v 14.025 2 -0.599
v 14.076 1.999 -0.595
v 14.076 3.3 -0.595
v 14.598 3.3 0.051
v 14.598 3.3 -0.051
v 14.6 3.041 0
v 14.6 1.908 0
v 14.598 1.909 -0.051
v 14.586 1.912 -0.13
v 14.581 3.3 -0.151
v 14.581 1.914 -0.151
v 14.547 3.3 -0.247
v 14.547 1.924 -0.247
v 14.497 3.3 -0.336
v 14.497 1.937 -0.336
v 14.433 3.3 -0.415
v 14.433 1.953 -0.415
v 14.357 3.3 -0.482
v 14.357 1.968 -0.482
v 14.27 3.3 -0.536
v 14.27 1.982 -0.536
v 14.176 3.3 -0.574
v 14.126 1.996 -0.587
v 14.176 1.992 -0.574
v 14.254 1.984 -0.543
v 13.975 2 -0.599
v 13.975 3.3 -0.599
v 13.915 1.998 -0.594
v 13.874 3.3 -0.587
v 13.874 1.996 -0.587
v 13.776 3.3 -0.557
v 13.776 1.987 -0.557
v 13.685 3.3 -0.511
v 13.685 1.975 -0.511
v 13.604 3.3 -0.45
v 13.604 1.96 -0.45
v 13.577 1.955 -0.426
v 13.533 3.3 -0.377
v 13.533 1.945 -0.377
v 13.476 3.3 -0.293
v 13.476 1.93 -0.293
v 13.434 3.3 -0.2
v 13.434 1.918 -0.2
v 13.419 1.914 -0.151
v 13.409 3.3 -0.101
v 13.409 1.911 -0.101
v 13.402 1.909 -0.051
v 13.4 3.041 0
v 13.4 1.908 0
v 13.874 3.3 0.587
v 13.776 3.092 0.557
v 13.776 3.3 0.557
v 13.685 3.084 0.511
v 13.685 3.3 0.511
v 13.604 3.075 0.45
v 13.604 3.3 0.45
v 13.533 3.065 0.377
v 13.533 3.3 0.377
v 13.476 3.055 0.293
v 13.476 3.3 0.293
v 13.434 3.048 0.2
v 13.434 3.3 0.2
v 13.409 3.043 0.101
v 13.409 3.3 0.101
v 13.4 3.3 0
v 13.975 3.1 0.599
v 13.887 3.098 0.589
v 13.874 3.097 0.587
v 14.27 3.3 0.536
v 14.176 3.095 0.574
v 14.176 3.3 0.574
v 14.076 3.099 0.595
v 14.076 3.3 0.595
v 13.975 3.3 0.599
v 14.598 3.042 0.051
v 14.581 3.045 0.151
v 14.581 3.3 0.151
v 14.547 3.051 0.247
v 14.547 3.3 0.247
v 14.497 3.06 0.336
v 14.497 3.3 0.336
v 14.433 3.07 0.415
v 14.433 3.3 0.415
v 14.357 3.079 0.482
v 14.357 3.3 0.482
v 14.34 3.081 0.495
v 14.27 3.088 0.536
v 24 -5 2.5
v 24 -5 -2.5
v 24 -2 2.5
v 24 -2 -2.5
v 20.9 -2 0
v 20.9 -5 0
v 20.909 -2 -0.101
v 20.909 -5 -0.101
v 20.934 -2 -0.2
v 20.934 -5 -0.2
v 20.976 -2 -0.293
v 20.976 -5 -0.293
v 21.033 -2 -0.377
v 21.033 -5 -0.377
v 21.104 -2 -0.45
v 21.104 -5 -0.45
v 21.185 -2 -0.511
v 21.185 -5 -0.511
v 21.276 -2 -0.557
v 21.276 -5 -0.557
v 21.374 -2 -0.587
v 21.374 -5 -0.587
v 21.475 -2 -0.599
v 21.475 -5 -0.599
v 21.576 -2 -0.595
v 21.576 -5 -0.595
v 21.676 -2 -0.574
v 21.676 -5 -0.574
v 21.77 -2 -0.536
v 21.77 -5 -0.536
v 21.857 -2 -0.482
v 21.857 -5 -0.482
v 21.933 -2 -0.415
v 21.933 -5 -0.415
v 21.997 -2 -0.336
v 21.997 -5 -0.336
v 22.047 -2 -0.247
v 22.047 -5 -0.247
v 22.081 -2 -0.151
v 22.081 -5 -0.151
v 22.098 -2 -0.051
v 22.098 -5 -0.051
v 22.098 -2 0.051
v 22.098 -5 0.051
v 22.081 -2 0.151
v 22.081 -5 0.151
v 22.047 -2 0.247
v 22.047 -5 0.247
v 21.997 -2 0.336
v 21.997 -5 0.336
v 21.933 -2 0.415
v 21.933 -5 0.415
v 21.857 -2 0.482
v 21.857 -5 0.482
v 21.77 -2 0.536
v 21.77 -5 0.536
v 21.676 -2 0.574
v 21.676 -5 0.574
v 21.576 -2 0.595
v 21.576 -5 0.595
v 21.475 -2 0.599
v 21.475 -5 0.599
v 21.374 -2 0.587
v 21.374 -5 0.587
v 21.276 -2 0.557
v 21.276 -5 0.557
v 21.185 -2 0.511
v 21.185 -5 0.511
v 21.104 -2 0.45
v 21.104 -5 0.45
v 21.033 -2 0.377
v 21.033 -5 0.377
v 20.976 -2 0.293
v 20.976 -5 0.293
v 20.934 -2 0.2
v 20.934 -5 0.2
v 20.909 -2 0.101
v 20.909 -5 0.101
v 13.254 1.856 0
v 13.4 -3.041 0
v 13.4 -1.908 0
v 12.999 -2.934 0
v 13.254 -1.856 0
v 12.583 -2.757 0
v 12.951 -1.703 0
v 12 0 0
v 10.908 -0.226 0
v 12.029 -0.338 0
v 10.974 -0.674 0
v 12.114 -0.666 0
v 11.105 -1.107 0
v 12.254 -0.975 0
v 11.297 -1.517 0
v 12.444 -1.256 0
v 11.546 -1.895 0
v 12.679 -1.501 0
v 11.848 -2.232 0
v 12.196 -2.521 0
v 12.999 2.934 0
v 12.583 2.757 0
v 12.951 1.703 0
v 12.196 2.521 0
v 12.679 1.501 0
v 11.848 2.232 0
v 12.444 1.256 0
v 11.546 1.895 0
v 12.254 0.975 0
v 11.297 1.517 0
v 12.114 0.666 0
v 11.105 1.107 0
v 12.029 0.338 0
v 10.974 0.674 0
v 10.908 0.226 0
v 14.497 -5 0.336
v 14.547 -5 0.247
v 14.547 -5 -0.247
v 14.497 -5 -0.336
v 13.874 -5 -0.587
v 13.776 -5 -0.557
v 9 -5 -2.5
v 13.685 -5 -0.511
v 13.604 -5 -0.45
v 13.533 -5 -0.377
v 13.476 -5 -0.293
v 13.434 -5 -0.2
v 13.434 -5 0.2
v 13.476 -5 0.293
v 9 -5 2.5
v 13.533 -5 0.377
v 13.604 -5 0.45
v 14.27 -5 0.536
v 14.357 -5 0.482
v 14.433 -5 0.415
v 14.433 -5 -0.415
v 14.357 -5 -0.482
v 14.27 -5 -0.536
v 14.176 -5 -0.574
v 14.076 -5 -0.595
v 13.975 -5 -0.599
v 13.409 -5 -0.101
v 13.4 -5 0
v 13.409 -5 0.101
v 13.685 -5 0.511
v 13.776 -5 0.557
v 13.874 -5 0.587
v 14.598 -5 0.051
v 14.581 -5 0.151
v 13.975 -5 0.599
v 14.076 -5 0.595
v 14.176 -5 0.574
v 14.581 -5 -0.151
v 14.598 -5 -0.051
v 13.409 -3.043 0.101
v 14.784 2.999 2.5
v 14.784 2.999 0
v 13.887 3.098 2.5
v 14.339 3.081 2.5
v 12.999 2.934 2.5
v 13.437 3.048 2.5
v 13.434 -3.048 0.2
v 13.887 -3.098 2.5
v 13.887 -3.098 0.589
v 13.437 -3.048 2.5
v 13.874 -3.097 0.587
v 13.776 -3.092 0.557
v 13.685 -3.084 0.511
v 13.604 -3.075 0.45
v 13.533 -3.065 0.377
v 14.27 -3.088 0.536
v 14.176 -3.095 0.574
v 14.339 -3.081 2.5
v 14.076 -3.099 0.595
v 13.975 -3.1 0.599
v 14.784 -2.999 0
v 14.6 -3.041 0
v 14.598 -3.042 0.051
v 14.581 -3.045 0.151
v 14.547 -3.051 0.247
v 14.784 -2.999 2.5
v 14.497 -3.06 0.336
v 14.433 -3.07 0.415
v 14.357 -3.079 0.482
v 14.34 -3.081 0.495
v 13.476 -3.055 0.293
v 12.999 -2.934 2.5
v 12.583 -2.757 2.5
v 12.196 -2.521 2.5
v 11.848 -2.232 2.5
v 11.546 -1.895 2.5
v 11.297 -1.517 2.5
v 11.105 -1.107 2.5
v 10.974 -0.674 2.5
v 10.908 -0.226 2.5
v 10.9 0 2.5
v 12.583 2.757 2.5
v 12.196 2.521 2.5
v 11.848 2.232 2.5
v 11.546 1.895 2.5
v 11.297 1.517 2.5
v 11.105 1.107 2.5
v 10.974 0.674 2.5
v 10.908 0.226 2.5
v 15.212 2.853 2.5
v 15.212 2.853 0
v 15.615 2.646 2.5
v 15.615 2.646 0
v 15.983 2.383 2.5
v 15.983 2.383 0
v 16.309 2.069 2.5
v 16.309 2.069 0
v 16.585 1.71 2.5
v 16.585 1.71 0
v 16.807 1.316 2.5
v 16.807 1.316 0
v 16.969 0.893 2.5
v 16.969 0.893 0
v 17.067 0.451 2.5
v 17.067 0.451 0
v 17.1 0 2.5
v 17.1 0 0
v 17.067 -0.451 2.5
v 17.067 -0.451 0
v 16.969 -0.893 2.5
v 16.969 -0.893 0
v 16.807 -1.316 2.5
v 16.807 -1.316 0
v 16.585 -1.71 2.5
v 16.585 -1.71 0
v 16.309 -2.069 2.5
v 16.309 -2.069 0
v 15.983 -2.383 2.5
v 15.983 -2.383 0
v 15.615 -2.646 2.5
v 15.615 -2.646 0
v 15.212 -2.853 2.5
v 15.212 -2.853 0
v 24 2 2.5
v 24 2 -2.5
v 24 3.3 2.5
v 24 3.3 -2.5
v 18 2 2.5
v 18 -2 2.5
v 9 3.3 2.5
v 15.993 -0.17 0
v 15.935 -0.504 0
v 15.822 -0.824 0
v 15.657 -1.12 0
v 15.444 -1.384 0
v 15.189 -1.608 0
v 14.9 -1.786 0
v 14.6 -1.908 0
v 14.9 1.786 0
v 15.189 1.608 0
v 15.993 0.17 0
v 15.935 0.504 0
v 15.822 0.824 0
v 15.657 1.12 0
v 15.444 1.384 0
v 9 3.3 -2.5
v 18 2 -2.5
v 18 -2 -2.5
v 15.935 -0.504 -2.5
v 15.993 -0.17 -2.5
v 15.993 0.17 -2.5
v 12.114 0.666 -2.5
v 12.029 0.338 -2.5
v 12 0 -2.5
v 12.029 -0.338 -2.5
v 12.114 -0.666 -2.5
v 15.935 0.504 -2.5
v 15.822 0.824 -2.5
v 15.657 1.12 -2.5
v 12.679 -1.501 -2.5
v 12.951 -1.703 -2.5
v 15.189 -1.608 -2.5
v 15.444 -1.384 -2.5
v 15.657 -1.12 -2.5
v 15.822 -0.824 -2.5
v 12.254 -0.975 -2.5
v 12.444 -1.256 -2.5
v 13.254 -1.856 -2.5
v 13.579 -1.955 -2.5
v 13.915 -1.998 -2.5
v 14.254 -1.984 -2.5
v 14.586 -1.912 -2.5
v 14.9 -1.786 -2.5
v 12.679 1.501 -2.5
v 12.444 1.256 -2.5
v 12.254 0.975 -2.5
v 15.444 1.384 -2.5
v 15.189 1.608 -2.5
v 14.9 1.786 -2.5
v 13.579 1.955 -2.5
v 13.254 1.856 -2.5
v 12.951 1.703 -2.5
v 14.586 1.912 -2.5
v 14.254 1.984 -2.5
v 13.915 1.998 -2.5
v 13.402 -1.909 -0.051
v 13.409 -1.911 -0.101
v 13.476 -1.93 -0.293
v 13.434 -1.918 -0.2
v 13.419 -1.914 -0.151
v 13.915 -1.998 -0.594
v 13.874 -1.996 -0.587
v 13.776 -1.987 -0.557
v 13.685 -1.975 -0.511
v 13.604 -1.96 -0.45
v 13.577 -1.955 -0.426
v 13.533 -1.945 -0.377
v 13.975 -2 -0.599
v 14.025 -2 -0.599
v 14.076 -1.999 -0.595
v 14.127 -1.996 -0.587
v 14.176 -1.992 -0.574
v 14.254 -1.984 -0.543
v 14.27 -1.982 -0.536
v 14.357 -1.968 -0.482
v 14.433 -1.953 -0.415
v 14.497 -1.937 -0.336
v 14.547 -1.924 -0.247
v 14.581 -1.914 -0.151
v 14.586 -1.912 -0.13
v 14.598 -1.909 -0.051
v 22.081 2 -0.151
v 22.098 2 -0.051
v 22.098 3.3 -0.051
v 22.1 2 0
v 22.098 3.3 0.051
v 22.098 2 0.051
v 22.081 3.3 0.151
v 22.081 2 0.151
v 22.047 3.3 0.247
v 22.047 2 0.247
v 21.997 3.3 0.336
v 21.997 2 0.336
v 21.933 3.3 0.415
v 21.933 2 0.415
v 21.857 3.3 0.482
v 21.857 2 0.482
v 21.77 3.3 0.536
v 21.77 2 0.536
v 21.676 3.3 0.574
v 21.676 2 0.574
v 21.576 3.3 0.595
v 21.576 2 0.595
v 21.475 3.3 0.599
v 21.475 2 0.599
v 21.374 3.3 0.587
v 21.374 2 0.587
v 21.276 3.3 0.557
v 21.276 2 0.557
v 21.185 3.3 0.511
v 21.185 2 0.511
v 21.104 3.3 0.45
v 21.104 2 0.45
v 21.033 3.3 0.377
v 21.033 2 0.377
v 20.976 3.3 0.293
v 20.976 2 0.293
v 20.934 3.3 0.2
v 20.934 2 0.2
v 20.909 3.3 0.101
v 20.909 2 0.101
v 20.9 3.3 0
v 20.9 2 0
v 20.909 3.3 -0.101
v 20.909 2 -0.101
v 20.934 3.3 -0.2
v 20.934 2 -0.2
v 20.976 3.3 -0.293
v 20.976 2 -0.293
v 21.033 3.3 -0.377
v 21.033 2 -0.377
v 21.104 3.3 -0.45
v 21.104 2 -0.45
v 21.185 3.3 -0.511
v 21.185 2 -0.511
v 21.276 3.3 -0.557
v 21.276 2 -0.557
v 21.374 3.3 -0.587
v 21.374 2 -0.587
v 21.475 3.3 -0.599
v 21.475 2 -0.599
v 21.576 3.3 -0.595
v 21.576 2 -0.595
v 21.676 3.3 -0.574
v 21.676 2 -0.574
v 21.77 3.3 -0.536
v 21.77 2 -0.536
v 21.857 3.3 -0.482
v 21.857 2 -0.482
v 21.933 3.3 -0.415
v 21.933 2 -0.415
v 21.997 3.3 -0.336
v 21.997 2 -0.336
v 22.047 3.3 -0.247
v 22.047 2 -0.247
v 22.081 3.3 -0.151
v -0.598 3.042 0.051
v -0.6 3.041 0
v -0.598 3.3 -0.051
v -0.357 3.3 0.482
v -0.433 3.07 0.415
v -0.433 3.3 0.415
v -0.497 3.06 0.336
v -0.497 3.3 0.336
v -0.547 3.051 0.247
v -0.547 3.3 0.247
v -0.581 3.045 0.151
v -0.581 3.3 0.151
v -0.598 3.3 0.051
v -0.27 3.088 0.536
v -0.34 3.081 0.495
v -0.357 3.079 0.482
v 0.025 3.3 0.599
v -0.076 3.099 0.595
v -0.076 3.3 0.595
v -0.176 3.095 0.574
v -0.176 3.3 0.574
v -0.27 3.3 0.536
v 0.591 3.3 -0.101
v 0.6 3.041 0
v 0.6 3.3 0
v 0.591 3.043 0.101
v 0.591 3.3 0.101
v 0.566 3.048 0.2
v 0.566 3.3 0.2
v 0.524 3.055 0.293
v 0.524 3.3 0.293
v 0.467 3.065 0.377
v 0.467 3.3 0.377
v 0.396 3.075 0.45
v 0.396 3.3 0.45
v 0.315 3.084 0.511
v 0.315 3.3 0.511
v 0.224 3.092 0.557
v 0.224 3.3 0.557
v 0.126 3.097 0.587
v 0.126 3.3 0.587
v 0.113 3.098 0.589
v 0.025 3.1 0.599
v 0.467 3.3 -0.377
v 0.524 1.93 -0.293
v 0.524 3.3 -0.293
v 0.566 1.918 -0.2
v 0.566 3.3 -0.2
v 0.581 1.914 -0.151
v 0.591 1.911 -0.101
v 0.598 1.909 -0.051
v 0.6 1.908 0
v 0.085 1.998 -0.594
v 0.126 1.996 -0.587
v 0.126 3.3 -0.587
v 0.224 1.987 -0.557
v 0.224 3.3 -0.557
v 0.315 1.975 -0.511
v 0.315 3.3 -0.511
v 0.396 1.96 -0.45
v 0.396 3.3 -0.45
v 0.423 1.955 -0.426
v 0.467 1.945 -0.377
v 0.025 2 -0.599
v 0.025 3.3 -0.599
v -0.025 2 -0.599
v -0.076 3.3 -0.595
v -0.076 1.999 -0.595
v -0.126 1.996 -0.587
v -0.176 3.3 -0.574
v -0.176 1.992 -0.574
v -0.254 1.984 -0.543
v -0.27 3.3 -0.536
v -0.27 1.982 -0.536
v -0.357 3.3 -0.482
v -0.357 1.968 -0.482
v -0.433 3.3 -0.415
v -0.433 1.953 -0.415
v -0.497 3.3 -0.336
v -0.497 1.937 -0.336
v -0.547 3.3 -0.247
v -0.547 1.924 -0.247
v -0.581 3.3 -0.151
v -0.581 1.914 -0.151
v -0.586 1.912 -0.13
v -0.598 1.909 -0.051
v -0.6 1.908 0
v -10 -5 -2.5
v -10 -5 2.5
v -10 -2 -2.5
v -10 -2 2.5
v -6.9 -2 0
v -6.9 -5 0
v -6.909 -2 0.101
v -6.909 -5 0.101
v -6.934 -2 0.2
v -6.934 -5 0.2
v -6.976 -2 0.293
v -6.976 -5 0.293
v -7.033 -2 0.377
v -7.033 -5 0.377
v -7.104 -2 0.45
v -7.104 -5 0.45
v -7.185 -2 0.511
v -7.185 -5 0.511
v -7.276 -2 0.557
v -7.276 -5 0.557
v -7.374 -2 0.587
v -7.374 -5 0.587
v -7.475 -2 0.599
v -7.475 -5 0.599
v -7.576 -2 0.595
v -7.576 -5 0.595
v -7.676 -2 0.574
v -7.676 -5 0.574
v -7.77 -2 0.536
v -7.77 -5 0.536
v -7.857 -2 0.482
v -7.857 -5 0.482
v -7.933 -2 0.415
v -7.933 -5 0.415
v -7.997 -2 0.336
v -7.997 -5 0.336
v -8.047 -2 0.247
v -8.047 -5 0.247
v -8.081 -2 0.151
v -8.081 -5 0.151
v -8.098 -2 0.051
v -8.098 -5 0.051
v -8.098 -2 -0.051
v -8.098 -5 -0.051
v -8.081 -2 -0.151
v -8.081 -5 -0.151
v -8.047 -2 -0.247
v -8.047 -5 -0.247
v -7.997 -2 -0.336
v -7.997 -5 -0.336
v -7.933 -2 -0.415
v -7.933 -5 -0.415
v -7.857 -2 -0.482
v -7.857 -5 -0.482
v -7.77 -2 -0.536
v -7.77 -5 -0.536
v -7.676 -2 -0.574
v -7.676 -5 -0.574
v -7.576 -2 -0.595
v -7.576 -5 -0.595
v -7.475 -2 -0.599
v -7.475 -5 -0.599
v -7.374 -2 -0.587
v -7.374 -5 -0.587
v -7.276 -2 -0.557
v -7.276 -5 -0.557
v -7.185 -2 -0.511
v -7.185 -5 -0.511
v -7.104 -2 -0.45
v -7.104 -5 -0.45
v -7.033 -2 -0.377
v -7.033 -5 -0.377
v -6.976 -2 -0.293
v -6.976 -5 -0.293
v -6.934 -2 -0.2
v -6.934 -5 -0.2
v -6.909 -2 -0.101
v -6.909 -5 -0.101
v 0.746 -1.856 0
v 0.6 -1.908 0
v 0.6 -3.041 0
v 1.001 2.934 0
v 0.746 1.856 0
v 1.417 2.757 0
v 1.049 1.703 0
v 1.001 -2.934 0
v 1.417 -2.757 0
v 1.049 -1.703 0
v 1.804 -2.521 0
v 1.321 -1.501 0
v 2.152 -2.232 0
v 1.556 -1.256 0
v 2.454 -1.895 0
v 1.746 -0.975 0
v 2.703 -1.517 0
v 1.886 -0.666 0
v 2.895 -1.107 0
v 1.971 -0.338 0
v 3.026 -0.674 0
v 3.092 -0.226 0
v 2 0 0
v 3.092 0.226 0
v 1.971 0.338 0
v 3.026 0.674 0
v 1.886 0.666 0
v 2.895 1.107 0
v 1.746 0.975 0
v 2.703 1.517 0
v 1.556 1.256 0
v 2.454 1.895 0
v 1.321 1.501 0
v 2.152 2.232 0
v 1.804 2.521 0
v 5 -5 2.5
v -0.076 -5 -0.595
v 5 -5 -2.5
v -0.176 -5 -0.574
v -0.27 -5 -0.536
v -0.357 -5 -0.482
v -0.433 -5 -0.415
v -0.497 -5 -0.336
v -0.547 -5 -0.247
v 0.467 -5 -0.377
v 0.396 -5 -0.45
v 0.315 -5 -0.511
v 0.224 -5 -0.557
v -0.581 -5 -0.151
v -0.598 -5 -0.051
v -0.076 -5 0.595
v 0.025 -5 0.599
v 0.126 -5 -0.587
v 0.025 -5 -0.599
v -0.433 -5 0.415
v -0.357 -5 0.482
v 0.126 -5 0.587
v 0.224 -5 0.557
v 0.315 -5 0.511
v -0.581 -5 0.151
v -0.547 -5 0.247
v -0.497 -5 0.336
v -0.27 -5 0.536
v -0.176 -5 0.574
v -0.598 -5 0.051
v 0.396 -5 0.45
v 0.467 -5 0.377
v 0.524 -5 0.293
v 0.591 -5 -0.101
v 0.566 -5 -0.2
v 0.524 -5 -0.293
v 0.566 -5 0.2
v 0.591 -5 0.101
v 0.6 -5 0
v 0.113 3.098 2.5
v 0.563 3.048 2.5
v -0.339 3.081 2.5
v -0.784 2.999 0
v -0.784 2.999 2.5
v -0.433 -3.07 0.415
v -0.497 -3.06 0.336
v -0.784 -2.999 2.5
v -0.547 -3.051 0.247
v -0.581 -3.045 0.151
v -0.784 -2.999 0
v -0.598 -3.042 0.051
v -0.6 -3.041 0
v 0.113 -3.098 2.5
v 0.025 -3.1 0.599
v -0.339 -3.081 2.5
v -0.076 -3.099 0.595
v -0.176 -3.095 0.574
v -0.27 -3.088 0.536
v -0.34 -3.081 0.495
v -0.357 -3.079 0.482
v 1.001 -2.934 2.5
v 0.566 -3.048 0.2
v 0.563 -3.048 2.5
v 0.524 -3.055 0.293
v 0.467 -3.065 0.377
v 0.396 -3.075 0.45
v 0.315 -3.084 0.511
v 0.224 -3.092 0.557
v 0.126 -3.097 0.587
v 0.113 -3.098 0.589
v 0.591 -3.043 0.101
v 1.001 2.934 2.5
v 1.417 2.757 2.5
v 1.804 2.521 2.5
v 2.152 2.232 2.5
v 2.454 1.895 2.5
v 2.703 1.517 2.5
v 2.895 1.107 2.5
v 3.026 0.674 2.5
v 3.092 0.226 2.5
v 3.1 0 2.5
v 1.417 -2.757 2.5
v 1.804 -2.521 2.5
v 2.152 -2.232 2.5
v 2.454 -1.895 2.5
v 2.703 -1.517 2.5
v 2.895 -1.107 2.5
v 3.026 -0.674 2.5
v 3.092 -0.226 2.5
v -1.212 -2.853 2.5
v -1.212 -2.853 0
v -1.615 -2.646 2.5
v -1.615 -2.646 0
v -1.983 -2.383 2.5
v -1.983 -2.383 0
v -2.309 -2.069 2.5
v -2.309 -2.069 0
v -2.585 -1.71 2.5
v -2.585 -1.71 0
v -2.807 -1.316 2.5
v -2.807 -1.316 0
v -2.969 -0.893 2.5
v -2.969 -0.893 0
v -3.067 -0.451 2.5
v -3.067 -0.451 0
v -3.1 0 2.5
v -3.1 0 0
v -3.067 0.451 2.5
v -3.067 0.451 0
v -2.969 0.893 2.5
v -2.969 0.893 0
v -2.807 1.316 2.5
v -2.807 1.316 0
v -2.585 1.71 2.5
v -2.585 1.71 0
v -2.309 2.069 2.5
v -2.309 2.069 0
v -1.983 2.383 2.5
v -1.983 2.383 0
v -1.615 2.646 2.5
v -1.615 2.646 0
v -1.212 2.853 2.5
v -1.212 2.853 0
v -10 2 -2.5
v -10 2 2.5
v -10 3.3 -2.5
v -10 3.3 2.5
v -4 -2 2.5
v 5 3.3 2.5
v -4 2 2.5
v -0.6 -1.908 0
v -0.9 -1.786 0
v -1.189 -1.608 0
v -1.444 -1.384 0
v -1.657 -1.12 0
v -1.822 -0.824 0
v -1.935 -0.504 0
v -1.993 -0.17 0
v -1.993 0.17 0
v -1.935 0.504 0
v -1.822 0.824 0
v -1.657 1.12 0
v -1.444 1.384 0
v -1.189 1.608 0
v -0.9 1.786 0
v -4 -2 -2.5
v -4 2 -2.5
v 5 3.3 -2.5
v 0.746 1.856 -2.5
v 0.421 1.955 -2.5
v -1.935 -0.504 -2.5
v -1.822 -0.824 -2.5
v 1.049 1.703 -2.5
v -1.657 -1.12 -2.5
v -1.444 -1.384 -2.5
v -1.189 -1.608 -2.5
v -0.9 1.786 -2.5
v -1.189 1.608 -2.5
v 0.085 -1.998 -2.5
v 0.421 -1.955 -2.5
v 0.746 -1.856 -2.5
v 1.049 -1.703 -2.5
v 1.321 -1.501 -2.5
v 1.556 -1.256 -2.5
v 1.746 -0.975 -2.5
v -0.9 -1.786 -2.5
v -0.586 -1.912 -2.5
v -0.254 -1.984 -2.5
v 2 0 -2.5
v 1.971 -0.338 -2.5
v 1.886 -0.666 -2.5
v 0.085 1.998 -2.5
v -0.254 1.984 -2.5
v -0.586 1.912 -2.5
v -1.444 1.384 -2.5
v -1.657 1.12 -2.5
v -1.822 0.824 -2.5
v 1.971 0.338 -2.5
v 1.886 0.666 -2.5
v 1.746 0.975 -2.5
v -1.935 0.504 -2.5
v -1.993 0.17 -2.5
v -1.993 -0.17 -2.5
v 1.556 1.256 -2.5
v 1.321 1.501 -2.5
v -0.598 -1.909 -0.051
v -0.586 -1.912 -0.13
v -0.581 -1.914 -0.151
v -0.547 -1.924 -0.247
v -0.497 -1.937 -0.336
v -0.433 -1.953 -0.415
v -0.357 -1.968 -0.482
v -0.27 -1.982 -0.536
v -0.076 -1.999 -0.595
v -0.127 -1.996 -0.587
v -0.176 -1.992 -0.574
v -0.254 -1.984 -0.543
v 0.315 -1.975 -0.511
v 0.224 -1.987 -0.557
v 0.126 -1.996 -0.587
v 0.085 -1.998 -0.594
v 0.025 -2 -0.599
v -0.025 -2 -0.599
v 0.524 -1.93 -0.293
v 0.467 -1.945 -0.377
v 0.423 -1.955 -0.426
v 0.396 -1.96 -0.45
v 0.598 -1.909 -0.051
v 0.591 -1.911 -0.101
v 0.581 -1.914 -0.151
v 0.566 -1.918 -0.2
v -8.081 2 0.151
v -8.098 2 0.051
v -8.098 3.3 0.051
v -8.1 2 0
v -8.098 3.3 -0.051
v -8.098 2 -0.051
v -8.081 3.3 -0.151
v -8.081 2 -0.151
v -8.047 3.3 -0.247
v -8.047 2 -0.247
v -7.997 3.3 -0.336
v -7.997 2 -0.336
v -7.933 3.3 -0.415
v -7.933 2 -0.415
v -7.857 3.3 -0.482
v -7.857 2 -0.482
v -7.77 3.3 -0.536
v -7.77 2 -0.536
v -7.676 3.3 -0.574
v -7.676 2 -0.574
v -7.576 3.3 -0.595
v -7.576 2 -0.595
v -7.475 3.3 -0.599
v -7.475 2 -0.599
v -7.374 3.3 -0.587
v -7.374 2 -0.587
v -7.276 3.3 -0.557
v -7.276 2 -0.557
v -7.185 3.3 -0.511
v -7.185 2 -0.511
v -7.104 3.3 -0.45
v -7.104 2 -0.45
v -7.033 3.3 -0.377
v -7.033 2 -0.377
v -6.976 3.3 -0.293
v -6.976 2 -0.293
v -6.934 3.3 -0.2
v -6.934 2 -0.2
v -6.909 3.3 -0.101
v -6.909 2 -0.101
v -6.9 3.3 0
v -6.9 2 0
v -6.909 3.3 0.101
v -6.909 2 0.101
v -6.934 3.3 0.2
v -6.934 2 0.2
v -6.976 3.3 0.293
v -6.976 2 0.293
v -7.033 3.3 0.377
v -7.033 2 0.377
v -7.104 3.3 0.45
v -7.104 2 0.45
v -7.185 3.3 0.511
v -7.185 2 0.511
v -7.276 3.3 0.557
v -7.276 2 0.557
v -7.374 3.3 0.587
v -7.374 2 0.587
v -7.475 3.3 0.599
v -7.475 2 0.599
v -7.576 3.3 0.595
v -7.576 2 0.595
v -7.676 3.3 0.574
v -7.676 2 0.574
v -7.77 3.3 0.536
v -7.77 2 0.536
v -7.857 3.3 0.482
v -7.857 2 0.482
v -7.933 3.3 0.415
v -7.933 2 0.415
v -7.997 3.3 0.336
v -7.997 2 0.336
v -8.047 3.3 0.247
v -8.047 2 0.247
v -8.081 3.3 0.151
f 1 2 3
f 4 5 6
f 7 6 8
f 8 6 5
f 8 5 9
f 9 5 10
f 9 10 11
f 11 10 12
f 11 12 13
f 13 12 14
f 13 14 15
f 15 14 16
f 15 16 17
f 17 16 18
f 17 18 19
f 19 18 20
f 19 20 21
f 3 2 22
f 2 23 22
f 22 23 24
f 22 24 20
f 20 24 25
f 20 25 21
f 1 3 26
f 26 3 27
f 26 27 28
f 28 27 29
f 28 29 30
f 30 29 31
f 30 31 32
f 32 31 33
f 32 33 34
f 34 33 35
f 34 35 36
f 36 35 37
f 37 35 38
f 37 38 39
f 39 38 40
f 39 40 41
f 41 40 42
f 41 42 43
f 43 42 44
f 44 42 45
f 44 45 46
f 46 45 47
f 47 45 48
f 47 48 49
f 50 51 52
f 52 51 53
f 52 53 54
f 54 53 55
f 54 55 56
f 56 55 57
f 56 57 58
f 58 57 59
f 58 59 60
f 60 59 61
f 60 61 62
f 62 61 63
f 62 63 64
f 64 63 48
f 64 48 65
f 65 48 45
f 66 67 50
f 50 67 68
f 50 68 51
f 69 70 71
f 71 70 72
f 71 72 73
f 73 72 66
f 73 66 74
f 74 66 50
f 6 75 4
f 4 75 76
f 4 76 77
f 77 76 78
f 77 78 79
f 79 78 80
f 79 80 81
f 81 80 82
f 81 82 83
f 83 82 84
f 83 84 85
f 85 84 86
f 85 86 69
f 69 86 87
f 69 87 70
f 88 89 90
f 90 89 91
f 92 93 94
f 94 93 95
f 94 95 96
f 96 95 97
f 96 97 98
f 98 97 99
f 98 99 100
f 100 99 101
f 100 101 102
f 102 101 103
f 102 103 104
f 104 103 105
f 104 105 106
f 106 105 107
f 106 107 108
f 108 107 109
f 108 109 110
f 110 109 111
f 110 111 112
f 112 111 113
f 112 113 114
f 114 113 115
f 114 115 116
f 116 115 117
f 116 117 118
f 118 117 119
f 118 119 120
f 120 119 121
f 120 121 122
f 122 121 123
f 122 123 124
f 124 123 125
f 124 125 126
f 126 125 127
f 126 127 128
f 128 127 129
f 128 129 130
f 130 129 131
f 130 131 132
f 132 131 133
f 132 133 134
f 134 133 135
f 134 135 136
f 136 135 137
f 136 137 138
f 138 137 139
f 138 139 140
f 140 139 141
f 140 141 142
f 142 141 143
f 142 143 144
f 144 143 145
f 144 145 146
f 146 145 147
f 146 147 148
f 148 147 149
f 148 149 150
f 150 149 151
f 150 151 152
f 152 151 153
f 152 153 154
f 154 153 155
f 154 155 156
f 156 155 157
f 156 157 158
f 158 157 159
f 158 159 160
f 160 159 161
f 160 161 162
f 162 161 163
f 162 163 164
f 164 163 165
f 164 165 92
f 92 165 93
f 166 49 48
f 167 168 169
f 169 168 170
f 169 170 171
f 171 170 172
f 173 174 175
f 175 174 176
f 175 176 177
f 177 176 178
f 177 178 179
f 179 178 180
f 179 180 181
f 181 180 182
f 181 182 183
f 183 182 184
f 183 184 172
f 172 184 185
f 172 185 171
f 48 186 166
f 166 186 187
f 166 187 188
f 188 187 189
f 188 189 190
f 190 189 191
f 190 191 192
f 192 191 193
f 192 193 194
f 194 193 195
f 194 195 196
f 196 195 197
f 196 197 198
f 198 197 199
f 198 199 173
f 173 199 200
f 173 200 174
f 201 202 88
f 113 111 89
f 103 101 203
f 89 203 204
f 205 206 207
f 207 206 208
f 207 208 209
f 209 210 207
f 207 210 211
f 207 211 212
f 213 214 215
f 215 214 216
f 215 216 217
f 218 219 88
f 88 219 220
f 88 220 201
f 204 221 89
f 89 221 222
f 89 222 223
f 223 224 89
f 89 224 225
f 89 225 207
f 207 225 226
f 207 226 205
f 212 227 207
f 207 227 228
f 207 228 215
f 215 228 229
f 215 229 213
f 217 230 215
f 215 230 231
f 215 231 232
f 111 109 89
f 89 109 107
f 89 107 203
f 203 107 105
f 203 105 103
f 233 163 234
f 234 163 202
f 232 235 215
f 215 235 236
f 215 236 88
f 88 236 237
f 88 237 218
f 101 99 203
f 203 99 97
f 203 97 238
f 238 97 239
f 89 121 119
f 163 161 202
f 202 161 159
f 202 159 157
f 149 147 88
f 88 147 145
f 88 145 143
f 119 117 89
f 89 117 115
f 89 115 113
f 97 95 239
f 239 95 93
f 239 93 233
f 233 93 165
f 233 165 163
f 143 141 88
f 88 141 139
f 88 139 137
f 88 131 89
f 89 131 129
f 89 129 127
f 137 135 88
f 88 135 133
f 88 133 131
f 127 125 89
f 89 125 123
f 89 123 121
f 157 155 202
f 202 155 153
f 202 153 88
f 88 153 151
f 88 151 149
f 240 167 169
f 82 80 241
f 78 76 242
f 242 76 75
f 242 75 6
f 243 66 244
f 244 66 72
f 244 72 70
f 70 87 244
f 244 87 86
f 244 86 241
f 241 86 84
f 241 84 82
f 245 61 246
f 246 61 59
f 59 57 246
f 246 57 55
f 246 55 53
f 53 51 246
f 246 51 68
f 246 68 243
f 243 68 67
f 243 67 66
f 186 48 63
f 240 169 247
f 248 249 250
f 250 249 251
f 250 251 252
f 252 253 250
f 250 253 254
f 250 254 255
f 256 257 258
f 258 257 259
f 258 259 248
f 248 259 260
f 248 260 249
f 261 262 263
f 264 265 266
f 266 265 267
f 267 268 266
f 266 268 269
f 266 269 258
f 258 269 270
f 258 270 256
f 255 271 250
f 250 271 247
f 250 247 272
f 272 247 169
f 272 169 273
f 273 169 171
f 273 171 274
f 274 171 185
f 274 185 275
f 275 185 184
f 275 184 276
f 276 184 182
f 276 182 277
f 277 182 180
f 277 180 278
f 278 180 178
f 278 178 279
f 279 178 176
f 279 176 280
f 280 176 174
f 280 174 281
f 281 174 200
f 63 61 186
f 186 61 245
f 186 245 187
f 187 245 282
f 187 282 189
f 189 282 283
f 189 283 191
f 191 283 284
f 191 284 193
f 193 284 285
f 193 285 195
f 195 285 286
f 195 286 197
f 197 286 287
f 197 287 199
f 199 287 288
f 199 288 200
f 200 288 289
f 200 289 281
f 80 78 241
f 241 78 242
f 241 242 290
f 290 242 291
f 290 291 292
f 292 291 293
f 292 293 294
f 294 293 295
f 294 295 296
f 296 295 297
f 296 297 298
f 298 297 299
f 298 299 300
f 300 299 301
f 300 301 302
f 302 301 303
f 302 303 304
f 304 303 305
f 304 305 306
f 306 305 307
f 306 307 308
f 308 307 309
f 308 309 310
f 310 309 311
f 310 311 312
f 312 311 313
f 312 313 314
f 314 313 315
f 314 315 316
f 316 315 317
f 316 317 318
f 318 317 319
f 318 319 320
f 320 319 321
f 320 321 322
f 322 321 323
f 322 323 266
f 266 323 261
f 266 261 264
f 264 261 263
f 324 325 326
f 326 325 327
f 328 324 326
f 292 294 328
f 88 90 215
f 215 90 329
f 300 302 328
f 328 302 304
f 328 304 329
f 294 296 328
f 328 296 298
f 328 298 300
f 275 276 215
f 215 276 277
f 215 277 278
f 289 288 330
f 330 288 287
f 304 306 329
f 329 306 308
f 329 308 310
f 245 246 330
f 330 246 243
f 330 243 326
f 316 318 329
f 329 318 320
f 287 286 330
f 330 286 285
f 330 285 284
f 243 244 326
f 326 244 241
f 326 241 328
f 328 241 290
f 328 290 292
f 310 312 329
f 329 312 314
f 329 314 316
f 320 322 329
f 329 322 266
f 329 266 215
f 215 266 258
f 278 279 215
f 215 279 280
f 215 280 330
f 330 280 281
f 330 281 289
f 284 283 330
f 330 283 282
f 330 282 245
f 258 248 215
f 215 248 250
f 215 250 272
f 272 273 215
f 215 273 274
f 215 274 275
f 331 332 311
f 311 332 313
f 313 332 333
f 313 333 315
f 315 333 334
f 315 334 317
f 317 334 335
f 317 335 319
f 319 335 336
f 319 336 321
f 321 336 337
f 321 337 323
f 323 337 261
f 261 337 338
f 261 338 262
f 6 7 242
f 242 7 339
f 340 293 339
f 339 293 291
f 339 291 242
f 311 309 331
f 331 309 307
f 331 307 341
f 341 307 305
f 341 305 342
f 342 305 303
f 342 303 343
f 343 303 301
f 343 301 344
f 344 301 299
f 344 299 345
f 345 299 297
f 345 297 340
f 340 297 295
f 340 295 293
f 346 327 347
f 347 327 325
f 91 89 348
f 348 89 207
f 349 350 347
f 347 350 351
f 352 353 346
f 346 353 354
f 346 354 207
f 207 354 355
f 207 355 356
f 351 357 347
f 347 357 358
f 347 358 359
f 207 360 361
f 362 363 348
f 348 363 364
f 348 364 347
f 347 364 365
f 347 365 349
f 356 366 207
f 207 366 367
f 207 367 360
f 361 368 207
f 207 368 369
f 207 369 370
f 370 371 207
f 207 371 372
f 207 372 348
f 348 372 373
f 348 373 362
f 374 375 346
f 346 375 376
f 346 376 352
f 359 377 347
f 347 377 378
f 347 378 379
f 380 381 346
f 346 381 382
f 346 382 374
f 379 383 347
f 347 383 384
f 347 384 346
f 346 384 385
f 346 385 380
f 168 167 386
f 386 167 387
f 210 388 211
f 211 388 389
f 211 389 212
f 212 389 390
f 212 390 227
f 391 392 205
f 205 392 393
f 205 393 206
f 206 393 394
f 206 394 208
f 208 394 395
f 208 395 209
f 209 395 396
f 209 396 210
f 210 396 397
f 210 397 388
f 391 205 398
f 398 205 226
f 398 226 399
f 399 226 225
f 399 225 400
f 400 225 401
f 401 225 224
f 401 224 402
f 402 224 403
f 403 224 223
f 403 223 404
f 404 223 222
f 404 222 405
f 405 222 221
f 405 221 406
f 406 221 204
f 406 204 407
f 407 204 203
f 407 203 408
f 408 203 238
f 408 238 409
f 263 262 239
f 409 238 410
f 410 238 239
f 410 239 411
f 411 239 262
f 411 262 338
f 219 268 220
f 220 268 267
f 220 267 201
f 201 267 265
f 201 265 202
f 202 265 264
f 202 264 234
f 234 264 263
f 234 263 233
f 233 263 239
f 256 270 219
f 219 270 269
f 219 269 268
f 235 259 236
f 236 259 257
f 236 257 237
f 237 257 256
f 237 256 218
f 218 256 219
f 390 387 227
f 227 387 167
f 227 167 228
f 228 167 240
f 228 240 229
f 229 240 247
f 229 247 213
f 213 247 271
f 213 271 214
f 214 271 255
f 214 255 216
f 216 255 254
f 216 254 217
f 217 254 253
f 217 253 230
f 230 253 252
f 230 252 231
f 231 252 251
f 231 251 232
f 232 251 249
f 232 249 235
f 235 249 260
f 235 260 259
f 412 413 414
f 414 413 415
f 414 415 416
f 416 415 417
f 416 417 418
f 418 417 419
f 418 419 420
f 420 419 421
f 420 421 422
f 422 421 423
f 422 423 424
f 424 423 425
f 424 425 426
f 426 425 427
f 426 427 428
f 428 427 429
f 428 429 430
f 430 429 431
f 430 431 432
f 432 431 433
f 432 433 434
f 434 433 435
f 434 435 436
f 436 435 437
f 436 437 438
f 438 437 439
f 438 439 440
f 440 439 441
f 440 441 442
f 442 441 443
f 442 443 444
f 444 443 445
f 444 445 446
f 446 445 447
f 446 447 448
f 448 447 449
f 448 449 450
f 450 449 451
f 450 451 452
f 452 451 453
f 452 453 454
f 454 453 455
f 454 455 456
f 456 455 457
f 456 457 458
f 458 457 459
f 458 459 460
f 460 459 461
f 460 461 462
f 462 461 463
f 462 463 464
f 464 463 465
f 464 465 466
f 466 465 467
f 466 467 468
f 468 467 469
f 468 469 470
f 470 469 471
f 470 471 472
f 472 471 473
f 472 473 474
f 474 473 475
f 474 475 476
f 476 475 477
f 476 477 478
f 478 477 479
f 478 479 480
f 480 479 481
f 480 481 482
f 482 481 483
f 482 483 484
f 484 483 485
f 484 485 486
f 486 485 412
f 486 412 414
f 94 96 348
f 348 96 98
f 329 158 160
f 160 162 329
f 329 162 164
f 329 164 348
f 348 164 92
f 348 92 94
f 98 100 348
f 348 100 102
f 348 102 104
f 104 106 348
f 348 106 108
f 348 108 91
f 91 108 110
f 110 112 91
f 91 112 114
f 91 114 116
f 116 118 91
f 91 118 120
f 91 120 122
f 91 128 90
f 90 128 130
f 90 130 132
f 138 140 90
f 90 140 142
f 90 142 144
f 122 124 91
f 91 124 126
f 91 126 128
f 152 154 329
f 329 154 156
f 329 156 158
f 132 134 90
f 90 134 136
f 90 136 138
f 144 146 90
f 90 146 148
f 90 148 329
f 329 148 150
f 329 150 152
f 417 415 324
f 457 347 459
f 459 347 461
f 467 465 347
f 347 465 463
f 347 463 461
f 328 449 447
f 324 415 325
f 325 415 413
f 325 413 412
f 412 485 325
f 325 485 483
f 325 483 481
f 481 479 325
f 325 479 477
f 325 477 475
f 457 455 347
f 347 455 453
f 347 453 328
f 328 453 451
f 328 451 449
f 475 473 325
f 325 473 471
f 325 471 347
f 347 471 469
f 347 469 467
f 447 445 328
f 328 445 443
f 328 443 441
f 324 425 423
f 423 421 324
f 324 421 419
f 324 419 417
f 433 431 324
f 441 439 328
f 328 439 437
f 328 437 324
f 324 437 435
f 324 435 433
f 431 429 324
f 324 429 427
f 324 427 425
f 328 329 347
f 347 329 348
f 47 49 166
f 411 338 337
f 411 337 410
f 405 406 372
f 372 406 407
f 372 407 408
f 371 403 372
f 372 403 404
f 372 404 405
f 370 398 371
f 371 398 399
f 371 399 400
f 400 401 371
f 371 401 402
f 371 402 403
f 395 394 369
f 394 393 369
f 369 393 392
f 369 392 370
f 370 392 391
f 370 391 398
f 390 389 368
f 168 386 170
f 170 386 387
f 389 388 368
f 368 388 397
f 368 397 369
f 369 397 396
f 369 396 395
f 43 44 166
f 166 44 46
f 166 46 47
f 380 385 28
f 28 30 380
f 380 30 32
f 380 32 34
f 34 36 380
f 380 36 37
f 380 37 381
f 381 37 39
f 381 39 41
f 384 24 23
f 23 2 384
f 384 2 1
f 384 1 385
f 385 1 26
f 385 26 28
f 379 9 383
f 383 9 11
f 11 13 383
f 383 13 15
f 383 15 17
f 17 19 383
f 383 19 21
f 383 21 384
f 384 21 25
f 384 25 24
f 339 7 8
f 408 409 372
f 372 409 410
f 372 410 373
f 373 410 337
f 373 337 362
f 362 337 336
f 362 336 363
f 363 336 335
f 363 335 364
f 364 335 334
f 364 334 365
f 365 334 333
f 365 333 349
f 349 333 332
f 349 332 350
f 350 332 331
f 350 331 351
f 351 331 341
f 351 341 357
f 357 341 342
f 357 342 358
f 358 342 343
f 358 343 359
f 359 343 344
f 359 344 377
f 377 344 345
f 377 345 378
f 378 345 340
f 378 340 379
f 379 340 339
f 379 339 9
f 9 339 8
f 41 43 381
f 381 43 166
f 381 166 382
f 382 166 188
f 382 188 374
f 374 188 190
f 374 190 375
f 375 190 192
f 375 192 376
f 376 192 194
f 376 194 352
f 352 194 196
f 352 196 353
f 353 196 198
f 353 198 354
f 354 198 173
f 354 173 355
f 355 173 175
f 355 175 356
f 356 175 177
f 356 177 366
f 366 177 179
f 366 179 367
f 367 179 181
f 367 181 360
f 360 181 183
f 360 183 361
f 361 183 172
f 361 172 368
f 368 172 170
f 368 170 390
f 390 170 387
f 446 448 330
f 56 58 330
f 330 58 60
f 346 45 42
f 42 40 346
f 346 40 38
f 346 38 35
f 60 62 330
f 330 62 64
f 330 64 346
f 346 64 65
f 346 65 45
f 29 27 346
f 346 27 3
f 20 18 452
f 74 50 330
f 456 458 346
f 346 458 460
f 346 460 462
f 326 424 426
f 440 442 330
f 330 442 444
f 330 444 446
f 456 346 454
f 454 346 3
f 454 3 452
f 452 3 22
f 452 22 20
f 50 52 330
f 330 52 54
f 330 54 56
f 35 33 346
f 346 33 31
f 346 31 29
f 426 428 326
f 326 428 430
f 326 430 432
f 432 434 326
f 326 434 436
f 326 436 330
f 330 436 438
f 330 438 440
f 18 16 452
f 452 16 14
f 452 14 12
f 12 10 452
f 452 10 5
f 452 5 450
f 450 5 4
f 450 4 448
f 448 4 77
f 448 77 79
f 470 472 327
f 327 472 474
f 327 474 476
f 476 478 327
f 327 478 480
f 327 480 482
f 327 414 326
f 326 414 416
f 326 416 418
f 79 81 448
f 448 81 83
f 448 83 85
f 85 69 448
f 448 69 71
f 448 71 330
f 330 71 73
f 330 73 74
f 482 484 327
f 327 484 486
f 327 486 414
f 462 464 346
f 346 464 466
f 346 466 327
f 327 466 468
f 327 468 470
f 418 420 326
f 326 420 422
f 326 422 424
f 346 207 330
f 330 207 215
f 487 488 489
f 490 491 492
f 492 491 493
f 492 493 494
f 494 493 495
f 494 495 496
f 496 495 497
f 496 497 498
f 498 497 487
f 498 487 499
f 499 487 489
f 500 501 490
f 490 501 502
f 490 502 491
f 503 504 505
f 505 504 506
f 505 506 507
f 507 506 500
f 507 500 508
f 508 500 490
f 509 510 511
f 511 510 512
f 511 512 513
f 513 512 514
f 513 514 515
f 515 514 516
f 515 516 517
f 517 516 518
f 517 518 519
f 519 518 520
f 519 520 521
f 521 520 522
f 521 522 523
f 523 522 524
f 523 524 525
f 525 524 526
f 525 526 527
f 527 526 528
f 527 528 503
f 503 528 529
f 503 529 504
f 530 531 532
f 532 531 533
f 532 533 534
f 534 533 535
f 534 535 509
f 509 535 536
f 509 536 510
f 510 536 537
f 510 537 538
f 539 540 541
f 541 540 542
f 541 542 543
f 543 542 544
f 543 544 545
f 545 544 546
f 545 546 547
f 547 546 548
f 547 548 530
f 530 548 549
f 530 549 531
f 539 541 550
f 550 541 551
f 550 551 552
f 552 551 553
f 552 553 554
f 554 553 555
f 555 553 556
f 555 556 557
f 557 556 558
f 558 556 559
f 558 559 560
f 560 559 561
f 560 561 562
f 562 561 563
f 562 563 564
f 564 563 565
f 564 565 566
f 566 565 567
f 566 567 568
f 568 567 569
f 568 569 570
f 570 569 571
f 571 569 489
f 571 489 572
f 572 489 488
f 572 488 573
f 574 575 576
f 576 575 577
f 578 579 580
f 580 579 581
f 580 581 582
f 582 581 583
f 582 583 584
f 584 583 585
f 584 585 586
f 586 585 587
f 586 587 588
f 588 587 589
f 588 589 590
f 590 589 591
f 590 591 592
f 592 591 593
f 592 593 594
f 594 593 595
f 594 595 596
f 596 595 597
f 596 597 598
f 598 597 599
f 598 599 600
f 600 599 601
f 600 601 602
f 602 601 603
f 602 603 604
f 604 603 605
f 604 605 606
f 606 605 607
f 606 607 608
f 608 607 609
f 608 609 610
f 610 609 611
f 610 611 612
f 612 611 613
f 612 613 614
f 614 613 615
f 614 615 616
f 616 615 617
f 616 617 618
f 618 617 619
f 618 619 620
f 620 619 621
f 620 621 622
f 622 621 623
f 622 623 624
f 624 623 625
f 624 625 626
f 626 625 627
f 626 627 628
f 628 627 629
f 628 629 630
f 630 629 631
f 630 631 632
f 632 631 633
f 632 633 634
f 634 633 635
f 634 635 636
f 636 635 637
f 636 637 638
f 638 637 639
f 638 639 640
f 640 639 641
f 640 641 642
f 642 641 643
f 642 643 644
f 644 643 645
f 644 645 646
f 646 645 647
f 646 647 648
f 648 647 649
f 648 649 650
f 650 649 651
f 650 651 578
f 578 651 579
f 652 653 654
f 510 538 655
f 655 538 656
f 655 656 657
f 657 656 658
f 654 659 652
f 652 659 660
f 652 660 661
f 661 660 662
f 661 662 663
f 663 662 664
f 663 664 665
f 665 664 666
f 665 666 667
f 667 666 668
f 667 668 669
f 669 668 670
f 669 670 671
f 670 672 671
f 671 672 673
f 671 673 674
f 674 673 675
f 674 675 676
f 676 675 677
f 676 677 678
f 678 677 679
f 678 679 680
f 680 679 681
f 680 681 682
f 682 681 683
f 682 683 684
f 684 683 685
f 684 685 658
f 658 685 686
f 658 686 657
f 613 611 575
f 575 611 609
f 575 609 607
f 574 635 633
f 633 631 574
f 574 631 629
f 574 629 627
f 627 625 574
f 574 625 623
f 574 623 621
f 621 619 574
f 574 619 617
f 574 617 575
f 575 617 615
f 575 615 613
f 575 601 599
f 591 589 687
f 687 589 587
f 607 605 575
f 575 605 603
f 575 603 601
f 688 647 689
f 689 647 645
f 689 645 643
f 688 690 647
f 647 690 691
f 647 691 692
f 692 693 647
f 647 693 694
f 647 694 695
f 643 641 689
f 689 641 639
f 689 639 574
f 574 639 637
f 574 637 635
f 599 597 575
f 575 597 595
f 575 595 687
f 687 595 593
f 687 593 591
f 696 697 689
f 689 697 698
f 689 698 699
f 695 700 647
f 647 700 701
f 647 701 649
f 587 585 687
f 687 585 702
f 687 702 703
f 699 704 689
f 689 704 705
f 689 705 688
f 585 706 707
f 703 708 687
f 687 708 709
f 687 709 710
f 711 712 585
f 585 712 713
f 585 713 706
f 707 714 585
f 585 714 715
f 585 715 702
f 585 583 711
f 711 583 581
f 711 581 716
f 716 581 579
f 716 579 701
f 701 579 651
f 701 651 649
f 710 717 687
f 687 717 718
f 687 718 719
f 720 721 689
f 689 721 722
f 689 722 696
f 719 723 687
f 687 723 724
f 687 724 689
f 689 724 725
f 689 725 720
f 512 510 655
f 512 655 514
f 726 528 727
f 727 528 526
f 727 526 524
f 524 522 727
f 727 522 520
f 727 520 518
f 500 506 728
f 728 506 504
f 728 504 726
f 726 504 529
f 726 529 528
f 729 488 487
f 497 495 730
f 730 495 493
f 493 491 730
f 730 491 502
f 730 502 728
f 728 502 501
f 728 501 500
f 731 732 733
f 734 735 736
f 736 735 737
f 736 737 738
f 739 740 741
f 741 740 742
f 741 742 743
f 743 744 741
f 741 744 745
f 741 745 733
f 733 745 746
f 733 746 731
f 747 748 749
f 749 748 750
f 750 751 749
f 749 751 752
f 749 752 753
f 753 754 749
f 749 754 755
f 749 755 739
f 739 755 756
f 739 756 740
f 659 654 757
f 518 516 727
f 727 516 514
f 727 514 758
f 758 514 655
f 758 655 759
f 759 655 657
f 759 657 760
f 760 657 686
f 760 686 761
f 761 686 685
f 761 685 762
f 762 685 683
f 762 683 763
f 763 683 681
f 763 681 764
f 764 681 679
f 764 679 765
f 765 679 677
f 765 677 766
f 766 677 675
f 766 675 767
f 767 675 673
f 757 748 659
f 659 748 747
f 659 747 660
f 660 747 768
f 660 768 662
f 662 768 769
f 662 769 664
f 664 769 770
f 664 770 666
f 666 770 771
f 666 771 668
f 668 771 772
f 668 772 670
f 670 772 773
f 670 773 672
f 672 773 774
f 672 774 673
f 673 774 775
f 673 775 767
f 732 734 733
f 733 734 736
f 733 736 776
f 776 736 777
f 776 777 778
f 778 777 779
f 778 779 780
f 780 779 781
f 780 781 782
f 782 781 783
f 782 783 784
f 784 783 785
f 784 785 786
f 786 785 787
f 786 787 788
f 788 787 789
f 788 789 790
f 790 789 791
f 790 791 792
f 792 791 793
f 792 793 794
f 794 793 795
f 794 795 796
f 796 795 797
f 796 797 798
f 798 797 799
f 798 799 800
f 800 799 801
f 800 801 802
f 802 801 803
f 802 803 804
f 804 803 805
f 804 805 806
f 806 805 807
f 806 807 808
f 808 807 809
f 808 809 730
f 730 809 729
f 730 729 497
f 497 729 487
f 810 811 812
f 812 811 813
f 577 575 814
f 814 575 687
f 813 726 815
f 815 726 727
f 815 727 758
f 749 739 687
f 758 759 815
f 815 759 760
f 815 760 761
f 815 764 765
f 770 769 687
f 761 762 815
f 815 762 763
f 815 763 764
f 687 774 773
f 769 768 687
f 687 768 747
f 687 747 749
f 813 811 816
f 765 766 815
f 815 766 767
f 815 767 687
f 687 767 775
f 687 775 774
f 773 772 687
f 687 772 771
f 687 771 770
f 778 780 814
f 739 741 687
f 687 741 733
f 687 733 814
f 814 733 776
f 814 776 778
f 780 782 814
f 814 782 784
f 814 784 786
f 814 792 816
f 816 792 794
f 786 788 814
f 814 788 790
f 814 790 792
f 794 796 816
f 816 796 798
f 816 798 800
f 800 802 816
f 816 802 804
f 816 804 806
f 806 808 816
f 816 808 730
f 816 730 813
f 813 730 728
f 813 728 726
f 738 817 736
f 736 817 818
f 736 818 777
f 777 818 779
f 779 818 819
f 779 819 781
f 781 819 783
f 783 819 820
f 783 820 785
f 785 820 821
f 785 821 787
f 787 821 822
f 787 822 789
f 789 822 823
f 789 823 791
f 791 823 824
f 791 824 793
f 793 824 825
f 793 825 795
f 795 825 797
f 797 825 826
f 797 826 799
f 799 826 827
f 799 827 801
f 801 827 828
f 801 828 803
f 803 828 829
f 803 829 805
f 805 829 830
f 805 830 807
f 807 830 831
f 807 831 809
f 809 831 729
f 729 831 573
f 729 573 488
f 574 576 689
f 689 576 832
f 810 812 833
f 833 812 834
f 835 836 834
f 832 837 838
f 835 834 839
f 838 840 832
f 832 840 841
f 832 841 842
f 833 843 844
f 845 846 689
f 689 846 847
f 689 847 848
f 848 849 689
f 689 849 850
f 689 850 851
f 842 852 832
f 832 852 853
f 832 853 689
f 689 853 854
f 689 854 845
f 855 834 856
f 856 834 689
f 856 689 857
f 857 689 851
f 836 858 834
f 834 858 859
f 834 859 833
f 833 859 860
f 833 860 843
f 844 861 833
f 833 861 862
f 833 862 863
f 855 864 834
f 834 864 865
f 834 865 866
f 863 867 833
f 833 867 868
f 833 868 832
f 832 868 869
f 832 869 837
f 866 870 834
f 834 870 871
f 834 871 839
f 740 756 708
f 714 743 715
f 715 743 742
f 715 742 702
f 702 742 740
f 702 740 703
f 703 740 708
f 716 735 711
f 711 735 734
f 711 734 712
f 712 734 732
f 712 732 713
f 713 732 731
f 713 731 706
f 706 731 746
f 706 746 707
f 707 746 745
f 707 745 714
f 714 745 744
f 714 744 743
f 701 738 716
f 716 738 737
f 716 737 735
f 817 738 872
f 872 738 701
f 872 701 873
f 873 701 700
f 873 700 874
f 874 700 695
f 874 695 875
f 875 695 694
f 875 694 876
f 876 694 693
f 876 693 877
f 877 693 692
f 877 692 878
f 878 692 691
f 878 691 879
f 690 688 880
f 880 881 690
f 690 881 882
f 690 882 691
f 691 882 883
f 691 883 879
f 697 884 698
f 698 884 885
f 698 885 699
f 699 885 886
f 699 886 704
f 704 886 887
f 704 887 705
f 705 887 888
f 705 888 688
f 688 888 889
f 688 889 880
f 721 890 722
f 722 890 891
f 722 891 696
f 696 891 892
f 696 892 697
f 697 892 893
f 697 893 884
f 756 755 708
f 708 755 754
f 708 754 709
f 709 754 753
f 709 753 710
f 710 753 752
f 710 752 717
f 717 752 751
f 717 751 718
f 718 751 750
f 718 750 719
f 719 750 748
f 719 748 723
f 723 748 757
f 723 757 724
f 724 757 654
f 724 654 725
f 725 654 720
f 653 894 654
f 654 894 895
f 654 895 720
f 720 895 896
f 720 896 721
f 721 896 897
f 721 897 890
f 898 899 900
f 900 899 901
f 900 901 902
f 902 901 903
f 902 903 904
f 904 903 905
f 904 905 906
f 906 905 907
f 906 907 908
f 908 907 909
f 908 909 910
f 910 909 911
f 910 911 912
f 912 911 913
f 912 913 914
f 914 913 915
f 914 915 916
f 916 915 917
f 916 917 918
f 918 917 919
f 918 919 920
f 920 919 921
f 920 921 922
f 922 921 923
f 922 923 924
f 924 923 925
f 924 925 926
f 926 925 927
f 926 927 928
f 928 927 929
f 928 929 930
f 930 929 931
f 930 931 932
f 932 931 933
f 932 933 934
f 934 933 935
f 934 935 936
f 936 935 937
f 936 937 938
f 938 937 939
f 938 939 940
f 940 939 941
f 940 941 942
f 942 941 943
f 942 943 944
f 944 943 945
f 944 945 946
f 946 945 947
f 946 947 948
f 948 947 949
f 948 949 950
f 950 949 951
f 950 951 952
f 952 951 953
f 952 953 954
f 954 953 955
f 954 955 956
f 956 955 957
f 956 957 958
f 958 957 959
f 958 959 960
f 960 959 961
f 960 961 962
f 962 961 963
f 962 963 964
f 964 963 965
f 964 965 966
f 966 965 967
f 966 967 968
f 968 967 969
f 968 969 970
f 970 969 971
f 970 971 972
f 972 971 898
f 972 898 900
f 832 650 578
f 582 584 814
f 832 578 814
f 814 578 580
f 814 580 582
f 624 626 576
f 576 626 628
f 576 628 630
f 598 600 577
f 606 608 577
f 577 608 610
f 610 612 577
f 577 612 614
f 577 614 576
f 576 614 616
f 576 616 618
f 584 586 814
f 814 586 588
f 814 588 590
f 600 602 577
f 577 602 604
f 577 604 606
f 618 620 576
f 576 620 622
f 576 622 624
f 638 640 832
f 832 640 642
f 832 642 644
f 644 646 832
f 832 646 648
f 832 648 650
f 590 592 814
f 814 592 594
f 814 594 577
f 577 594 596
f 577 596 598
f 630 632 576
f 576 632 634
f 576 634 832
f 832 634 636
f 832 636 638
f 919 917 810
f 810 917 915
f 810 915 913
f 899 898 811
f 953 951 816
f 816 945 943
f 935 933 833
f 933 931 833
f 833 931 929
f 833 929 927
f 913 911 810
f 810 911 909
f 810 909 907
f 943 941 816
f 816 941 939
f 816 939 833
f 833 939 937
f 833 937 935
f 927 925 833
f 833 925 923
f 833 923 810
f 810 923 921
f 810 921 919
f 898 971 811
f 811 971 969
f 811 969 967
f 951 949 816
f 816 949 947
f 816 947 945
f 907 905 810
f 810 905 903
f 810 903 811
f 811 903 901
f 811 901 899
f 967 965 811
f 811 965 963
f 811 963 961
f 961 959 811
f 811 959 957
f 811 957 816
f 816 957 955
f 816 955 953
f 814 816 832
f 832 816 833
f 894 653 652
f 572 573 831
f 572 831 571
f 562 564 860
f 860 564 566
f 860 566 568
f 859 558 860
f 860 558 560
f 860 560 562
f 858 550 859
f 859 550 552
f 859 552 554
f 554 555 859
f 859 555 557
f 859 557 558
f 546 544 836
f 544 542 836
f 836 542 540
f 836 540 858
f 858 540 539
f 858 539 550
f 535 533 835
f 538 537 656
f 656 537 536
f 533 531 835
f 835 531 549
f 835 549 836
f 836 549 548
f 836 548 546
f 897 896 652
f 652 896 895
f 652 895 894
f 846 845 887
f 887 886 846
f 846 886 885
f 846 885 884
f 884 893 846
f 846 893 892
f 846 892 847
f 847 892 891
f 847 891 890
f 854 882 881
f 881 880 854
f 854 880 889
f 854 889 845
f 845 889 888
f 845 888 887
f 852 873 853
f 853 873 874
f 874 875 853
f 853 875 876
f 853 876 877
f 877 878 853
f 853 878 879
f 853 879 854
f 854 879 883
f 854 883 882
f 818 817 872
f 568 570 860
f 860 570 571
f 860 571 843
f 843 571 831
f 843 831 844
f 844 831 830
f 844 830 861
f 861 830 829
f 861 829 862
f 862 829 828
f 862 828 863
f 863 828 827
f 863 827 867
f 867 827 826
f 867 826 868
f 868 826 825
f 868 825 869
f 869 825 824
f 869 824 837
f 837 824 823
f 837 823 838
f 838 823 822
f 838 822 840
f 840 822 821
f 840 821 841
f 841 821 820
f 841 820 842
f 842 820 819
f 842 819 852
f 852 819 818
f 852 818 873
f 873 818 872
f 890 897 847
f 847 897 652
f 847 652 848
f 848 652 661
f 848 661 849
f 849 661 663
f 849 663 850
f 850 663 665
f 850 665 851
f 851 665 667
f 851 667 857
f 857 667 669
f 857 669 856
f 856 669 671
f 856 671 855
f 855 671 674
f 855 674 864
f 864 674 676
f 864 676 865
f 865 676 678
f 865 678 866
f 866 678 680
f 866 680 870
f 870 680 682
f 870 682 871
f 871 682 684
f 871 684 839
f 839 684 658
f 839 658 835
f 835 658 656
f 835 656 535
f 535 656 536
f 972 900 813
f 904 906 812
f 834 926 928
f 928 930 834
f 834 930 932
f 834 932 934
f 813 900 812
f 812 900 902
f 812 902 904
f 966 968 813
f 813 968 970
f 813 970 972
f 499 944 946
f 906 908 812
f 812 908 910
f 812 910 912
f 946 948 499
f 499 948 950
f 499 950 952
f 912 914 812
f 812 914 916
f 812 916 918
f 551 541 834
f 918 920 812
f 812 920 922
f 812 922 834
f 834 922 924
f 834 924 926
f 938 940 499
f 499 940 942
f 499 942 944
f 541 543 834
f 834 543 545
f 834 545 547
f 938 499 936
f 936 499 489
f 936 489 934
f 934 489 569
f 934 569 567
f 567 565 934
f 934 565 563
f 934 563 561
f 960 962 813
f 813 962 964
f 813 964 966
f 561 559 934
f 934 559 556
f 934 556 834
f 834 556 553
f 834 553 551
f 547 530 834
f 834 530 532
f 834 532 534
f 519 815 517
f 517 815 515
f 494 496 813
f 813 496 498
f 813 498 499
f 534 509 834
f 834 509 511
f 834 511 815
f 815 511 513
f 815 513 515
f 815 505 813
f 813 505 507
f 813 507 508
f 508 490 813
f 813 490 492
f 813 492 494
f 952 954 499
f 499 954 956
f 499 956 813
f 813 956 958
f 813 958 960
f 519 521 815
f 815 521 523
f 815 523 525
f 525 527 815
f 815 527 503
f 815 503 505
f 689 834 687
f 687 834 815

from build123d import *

# Parameters (mm, degrees)
SKETCH_1_W          = 20
SKETCH_1_H          = 10
SKETCH_1_R          = 3.1
EXTRUDE_1_DEPTH     = 2.5
SKETCH_2_W          = 20
SKETCH_2_H          = 10
EXTRUDE_2_DEPTH     = 2.5
SKETCH_3_R          = 0.6
CUT_EXTRUDE_1_DEPTH = 15.361406616
SKETCH_4_W          = 6
SKETCH_4_H          = 4
CUT_EXTRUDE_2_DEPTH = 13.247448796
SKETCH_5_R          = 2
CUT_EXTRUDE_3_DEPTH = 13.247448755
SKETCH_6_W          = 20
SKETCH_6_H          = 1.7
CUT_EXTRUDE_4_DEPTH = 13.247448796
SKETCH_7_W          = 5
SKETCH_7_H          = 8.3
CUT_EXTRUDE_5_DEPTH = 13.247448796


with BuildPart() as part:
    # 草图1 → 凸台-拉伸1 (new body)
    with BuildSketch(Plane.XY):
        Rectangle(SKETCH_1_W, SKETCH_1_H)
        Circle(SKETCH_1_R, mode=Mode.SUBTRACT)
    extrude(amount=EXTRUDE_1_DEPTH)

    # 草图2 → 凸台-拉伸2 (add)
    with BuildSketch(Plane(origin=(0, 0, 0), x_dir=(-1, 0, 0), z_dir=(0, 0, -1))):
        Rectangle(SKETCH_2_W, SKETCH_2_H)
    extrude(amount=EXTRUDE_2_DEPTH)

    # 草图3 → 切除-拉伸1 (cut, through all)
    with BuildSketch(Plane.XZ.offset(5)):
        with Locations((-7.5, 0)):
            Circle(SKETCH_3_R)
        Circle(SKETCH_3_R)
    extrude(amount=-CUT_EXTRUDE_1_DEPTH, mode=Mode.SUBTRACT)

    # 草图4 → 切除-拉伸2 (cut, through all)
    with BuildSketch(Plane(origin=(0, 0, -2.5), x_dir=(-1, 0, 0), z_dir=(0, 0, -1))):
        with Locations((7, 0)):
            Rectangle(SKETCH_4_W, SKETCH_4_H)
    extrude(amount=-CUT_EXTRUDE_2_DEPTH, mode=Mode.SUBTRACT)

    # 草图5 → 切除-拉伸3 (cut, through all)
    with BuildSketch(Plane.XY.offset(2.5)):
        Circle(SKETCH_5_R)
    extrude(amount=-CUT_EXTRUDE_3_DEPTH, mode=Mode.SUBTRACT)

    # 草图6 → 切除-拉伸4 (cut, through all)
    with BuildSketch(Plane.XY.offset(2.5)):
        with Locations((0, 4.15)):
            Rectangle(SKETCH_6_W, SKETCH_6_H)
    extrude(amount=-CUT_EXTRUDE_4_DEPTH, mode=Mode.SUBTRACT)

    # 草图7 → 切除-拉伸5 (cut, through all)
    with BuildSketch(Plane.XY.offset(2.5)):
        with Locations((7.5, -0.85)):
            Rectangle(SKETCH_7_W, SKETCH_7_H)
    extrude(amount=-CUT_EXTRUDE_5_DEPTH, mode=Mode.SUBTRACT)


with BuildPart() as body_2:
    # 镜向2: mirrored copy
    add(part.part.mirror(Plane(origin=(7, 0, 0), x_dir=(0, 0, 1), z_dir=(1, 0, 0))))


solid = Compound([part.part, body_2.part])
